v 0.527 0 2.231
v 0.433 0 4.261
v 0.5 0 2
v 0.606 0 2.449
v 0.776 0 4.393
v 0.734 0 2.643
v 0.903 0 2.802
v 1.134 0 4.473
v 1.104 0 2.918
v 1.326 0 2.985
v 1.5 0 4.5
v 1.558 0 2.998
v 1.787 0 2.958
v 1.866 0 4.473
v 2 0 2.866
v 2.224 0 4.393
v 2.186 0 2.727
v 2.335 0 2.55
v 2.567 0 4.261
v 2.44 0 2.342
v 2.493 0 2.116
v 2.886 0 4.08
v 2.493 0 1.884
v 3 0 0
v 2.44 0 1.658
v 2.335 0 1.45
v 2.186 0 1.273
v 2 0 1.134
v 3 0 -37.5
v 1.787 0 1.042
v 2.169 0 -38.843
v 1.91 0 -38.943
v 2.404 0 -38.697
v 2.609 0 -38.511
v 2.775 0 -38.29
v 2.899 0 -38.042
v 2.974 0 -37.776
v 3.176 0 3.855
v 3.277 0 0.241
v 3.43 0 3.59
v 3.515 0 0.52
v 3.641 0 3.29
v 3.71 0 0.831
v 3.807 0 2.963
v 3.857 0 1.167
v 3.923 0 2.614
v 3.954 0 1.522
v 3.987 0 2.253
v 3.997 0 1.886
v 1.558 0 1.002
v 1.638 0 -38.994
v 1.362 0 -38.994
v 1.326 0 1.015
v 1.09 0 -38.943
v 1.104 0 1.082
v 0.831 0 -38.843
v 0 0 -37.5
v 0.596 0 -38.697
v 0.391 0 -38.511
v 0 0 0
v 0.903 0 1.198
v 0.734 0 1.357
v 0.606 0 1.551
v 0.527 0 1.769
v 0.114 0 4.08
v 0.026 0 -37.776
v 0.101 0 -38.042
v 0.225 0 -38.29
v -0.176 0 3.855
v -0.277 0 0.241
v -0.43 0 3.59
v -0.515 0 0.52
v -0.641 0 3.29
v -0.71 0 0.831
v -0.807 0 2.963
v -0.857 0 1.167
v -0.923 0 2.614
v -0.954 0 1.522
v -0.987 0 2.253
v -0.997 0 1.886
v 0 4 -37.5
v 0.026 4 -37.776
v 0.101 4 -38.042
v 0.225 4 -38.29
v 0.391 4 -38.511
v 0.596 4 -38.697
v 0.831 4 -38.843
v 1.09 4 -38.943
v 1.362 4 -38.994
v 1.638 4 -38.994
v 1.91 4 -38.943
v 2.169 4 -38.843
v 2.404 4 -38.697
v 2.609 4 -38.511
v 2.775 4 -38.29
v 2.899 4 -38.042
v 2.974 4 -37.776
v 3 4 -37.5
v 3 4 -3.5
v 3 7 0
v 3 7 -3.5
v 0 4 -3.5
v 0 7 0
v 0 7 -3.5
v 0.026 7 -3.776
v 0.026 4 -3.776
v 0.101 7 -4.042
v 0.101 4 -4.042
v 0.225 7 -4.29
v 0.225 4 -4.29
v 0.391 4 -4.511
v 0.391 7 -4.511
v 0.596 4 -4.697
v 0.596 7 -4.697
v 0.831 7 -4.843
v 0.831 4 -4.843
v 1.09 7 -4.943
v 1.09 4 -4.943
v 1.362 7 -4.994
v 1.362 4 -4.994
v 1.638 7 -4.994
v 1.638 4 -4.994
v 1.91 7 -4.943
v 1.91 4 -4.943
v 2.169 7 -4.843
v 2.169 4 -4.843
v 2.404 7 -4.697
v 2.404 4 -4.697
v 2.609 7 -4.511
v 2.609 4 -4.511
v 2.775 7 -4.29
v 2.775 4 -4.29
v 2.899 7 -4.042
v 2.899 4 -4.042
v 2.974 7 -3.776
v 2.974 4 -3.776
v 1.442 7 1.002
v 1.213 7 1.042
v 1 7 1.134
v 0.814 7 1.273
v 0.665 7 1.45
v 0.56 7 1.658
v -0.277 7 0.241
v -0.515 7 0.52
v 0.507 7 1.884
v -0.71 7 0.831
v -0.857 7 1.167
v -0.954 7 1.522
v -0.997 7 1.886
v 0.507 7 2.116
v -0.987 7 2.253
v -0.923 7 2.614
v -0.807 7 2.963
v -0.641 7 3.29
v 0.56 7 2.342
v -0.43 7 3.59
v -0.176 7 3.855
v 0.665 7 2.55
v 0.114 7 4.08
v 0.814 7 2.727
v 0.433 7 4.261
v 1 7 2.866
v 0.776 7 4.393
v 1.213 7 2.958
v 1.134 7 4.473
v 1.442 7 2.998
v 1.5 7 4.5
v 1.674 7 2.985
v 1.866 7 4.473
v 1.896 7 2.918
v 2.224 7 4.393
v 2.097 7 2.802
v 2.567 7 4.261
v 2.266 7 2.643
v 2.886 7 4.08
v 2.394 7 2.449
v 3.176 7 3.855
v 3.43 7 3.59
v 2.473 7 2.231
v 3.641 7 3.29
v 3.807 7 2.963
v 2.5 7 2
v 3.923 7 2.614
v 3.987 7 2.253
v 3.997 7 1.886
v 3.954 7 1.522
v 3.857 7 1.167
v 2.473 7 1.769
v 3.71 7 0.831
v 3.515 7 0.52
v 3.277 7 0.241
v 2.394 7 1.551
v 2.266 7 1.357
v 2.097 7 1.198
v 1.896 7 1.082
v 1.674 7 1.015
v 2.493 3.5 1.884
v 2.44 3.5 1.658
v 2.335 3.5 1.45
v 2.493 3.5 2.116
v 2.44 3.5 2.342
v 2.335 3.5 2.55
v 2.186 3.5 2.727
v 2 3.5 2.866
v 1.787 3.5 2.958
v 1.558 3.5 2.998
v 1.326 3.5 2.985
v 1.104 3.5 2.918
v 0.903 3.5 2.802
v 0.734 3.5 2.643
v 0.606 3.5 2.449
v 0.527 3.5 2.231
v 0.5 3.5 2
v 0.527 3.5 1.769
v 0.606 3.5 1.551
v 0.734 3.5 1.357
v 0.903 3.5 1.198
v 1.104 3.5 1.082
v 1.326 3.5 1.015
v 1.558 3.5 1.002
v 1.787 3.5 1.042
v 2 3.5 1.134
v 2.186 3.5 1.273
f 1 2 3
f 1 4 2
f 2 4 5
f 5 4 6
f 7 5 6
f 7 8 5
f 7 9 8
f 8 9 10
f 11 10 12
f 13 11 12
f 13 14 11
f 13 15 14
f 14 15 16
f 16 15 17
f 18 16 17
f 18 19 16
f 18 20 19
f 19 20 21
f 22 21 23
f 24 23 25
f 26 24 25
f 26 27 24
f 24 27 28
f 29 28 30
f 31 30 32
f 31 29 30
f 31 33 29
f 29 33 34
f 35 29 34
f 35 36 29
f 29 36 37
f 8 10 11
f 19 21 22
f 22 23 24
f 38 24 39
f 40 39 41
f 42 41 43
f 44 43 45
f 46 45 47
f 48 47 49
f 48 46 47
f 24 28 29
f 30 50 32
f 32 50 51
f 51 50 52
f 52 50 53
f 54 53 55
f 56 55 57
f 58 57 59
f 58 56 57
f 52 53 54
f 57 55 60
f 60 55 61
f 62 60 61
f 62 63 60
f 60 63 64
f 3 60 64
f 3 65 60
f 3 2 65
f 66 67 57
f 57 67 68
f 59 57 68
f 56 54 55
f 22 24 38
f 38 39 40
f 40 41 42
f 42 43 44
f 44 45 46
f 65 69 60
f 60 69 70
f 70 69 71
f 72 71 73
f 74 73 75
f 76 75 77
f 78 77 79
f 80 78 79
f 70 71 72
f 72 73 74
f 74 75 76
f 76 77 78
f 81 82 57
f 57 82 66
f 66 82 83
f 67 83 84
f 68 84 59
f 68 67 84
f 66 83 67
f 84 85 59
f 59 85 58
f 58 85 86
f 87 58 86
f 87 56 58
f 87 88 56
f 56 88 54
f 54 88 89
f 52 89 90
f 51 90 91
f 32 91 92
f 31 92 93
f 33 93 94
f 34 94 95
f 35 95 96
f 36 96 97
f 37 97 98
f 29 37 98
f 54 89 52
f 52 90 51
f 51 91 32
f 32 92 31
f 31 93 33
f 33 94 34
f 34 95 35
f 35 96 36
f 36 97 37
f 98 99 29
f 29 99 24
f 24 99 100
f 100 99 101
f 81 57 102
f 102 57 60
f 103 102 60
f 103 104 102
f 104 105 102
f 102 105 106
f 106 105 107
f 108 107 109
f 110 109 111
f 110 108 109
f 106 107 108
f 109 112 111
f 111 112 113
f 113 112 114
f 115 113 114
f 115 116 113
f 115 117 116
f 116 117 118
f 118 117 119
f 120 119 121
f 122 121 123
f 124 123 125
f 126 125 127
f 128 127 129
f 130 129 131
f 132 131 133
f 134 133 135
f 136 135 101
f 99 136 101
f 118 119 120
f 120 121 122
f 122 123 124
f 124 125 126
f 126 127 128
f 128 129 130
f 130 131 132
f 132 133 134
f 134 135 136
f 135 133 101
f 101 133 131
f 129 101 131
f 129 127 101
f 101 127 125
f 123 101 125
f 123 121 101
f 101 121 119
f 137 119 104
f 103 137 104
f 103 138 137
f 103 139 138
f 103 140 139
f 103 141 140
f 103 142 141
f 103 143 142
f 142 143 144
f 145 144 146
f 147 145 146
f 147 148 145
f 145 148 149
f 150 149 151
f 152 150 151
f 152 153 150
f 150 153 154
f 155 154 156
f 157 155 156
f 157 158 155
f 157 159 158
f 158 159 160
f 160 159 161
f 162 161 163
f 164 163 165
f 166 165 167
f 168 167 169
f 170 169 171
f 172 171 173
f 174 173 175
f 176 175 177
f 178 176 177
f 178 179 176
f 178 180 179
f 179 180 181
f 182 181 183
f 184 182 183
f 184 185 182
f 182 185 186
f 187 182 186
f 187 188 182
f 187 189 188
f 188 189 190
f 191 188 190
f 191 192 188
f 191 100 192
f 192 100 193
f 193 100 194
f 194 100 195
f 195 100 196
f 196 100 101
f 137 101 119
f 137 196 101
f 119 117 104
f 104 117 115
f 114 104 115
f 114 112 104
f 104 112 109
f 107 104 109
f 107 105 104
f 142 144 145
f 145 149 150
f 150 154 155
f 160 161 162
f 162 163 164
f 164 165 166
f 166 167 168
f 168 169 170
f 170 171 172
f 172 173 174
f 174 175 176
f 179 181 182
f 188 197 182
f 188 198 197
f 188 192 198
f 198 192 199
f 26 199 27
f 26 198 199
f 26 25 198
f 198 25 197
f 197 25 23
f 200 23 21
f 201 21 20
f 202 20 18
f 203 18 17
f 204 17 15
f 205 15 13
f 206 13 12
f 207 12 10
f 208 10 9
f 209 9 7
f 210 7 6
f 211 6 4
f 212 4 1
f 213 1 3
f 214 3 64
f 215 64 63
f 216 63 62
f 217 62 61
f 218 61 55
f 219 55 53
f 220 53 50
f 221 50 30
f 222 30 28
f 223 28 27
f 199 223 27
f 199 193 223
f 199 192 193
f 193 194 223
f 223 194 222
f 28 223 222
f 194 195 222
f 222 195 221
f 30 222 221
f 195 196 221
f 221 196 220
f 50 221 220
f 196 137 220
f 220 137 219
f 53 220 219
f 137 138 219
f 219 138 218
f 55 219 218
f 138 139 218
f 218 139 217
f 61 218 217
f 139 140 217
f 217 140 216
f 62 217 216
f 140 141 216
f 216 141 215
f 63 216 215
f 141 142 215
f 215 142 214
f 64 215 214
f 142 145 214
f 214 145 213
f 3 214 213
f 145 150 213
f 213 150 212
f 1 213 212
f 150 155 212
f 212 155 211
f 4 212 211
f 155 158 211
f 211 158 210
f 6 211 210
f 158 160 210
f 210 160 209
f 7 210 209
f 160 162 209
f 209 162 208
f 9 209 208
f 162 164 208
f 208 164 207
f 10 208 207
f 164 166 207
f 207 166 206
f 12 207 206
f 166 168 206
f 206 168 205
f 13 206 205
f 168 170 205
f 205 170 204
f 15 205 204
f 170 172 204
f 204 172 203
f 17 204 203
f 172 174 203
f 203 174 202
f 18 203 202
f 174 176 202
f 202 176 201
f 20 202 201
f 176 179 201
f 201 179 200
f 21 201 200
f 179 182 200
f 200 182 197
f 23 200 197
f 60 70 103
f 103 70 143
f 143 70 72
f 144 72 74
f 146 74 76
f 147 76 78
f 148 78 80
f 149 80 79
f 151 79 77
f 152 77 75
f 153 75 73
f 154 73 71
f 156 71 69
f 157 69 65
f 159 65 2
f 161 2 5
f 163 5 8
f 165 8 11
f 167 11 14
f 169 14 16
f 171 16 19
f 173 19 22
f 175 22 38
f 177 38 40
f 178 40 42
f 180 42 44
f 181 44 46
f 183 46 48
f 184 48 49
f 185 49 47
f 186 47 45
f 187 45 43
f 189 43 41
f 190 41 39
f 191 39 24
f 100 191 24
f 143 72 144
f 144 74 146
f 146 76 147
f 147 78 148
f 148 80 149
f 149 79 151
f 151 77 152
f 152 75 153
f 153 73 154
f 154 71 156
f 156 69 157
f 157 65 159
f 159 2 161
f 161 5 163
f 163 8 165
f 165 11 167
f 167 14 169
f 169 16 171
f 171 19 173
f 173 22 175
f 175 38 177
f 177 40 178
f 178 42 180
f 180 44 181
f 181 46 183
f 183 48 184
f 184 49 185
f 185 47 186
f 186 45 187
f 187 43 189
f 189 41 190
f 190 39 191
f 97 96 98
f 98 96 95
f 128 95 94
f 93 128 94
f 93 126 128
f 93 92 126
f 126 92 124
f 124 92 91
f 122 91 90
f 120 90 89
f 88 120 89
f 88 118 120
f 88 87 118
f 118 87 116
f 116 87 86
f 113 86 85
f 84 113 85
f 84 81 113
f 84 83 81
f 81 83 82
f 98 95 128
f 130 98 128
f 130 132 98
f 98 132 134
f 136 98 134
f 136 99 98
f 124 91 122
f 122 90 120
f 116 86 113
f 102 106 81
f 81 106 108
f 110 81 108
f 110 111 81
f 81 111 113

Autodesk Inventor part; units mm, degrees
ref_plane "YZ Plane" through (0, 0, 0) normal (1, 0, 0) x (0, 1, 0)
ref_plane "XZ Plane" through (0, 0, 0) normal (0, 1, 0) x (-1, 0, 0)
ref_plane "XY Plane" through (0, 0, 0) normal (0, 0, 1) x (1, 0, 0)
sketch "Sketch1" plane through (0, 0, 0) normal (0, 1, 0) x (-1, 0, 0)
  line L0 (0, 0) -> (-3, 0)
  line L1 (-3, 0) -> (-3, -39)
  line L2 (-3, -39) -> (0, -39)
  line L3 (0, -39) -> (0, 0)
  circle A0 centre (-1.5, 2) radius 2.5
  circle A1 centre (-1.5, 2) radius 1
  dimension "d0" = 39
  dimension "d1" = 3
  dimension "d2" = 5
  dimension "d3" = 2
extrude "Base" add sketch "Sketch1" along normal blind 4
sketch "Sketch2" plane through (0, 4, 0) normal (0, 1, 0) x (1, 0, 0)
  line L0 (0, 39) -> (0, 0) projected
  line L1 (3, 0) -> (3, 39) projected
  circle A0 centre (1.5, -2) radius 1 projected
  arc A1 (0, 0) -> (3, 0) centre (1.5, -2) ccw projected
  line L2 (3, 0) -> (3, 39) projected
  line L3 (3, 39) -> (0, 39) projected
  line L4 (0, 39) -> (0, 0) projected
  line L5 (0, 5) -> (3, 5)
  dimension "d8" = 5
extrude "Superior" add sketch "Sketch2" along normal blind 3 contours L5 L1 A1 L0
fillet "Biselado" radius 1.5 4 edges at (3, 5.5, -5) (0, 5.5, -5) (3, 2, -39) (0, 2, -39)
equation "\"d0\" = traba_largo"
equation "\"d1\" = traba_ancho"
equation "\"d2\" = traba_diametro"
equation "\"d3\" = traba_diametro_perforacion"
equation "\"d4\" = traba_alto"
equation "\"d8\" = traba_top_largo"
equation "\"d9\" = traba_top_alto"
equation "\"d11\" = 0.5 * traba_ancho"
equation "\"base_alto\" = 3"
equation "\"deslizador_alto\" = 3"
equation "\"deslizador_alto_1\" = 3"
equation "\"deslizador_interruptor_ancho\" = 7"
equation "\"deslizador_interruptor_largo\" = 5"
equation "\"deslizador_largo\" = 144"
equation "\"deslizador_saliente\" = 5"
equation "\"deslizador_soporte_alto\" = 4"
equation "\"deslizador_soporte_ancho\" = 5"
equation "\"deslizador_tope_alto\" = 5"
equation "\"hoja_alto\" = 3"
equation "\"hoja_cola_biselado\" = 1"
equation "\"hoja_filo_biselado\" = 0.5"
equation "\"hoja_stop_biselado\" = 2"
equation "\"hoja_stop_largo\" = 5"
equation "\"hoja_stop_posicion\" = 5"
equation "\"hoja_stop_saliente\" = 5"
equation "\"margen\" = 0.3"
equation "\"muros_grosor\" = 3"
equation "\"rail_alto\" = 1.5"
equation "\"rail_grosor\" = 5"
equation "\"tirador_agarre_largo\" = 3"
equation "\"traba_largo\" = 39"
equation "\"traba_ancho\" = 3"
equation "\"traba_diametro\" = 5"
equation "\"traba_diametro_perforacion\" = 2"
equation "\"traba_alto\" = 4"
equation "\"traba_top_largo\" = 5"
equation "\"traba_top_alto\" = 3"
equation "\"base_separacion_agujeros\" = 4"
equation "\"base_agujeros_separacion\" = 3.5"
equation "\"base_agujeros_diametro\" = 2"
properties part number "Traba"
